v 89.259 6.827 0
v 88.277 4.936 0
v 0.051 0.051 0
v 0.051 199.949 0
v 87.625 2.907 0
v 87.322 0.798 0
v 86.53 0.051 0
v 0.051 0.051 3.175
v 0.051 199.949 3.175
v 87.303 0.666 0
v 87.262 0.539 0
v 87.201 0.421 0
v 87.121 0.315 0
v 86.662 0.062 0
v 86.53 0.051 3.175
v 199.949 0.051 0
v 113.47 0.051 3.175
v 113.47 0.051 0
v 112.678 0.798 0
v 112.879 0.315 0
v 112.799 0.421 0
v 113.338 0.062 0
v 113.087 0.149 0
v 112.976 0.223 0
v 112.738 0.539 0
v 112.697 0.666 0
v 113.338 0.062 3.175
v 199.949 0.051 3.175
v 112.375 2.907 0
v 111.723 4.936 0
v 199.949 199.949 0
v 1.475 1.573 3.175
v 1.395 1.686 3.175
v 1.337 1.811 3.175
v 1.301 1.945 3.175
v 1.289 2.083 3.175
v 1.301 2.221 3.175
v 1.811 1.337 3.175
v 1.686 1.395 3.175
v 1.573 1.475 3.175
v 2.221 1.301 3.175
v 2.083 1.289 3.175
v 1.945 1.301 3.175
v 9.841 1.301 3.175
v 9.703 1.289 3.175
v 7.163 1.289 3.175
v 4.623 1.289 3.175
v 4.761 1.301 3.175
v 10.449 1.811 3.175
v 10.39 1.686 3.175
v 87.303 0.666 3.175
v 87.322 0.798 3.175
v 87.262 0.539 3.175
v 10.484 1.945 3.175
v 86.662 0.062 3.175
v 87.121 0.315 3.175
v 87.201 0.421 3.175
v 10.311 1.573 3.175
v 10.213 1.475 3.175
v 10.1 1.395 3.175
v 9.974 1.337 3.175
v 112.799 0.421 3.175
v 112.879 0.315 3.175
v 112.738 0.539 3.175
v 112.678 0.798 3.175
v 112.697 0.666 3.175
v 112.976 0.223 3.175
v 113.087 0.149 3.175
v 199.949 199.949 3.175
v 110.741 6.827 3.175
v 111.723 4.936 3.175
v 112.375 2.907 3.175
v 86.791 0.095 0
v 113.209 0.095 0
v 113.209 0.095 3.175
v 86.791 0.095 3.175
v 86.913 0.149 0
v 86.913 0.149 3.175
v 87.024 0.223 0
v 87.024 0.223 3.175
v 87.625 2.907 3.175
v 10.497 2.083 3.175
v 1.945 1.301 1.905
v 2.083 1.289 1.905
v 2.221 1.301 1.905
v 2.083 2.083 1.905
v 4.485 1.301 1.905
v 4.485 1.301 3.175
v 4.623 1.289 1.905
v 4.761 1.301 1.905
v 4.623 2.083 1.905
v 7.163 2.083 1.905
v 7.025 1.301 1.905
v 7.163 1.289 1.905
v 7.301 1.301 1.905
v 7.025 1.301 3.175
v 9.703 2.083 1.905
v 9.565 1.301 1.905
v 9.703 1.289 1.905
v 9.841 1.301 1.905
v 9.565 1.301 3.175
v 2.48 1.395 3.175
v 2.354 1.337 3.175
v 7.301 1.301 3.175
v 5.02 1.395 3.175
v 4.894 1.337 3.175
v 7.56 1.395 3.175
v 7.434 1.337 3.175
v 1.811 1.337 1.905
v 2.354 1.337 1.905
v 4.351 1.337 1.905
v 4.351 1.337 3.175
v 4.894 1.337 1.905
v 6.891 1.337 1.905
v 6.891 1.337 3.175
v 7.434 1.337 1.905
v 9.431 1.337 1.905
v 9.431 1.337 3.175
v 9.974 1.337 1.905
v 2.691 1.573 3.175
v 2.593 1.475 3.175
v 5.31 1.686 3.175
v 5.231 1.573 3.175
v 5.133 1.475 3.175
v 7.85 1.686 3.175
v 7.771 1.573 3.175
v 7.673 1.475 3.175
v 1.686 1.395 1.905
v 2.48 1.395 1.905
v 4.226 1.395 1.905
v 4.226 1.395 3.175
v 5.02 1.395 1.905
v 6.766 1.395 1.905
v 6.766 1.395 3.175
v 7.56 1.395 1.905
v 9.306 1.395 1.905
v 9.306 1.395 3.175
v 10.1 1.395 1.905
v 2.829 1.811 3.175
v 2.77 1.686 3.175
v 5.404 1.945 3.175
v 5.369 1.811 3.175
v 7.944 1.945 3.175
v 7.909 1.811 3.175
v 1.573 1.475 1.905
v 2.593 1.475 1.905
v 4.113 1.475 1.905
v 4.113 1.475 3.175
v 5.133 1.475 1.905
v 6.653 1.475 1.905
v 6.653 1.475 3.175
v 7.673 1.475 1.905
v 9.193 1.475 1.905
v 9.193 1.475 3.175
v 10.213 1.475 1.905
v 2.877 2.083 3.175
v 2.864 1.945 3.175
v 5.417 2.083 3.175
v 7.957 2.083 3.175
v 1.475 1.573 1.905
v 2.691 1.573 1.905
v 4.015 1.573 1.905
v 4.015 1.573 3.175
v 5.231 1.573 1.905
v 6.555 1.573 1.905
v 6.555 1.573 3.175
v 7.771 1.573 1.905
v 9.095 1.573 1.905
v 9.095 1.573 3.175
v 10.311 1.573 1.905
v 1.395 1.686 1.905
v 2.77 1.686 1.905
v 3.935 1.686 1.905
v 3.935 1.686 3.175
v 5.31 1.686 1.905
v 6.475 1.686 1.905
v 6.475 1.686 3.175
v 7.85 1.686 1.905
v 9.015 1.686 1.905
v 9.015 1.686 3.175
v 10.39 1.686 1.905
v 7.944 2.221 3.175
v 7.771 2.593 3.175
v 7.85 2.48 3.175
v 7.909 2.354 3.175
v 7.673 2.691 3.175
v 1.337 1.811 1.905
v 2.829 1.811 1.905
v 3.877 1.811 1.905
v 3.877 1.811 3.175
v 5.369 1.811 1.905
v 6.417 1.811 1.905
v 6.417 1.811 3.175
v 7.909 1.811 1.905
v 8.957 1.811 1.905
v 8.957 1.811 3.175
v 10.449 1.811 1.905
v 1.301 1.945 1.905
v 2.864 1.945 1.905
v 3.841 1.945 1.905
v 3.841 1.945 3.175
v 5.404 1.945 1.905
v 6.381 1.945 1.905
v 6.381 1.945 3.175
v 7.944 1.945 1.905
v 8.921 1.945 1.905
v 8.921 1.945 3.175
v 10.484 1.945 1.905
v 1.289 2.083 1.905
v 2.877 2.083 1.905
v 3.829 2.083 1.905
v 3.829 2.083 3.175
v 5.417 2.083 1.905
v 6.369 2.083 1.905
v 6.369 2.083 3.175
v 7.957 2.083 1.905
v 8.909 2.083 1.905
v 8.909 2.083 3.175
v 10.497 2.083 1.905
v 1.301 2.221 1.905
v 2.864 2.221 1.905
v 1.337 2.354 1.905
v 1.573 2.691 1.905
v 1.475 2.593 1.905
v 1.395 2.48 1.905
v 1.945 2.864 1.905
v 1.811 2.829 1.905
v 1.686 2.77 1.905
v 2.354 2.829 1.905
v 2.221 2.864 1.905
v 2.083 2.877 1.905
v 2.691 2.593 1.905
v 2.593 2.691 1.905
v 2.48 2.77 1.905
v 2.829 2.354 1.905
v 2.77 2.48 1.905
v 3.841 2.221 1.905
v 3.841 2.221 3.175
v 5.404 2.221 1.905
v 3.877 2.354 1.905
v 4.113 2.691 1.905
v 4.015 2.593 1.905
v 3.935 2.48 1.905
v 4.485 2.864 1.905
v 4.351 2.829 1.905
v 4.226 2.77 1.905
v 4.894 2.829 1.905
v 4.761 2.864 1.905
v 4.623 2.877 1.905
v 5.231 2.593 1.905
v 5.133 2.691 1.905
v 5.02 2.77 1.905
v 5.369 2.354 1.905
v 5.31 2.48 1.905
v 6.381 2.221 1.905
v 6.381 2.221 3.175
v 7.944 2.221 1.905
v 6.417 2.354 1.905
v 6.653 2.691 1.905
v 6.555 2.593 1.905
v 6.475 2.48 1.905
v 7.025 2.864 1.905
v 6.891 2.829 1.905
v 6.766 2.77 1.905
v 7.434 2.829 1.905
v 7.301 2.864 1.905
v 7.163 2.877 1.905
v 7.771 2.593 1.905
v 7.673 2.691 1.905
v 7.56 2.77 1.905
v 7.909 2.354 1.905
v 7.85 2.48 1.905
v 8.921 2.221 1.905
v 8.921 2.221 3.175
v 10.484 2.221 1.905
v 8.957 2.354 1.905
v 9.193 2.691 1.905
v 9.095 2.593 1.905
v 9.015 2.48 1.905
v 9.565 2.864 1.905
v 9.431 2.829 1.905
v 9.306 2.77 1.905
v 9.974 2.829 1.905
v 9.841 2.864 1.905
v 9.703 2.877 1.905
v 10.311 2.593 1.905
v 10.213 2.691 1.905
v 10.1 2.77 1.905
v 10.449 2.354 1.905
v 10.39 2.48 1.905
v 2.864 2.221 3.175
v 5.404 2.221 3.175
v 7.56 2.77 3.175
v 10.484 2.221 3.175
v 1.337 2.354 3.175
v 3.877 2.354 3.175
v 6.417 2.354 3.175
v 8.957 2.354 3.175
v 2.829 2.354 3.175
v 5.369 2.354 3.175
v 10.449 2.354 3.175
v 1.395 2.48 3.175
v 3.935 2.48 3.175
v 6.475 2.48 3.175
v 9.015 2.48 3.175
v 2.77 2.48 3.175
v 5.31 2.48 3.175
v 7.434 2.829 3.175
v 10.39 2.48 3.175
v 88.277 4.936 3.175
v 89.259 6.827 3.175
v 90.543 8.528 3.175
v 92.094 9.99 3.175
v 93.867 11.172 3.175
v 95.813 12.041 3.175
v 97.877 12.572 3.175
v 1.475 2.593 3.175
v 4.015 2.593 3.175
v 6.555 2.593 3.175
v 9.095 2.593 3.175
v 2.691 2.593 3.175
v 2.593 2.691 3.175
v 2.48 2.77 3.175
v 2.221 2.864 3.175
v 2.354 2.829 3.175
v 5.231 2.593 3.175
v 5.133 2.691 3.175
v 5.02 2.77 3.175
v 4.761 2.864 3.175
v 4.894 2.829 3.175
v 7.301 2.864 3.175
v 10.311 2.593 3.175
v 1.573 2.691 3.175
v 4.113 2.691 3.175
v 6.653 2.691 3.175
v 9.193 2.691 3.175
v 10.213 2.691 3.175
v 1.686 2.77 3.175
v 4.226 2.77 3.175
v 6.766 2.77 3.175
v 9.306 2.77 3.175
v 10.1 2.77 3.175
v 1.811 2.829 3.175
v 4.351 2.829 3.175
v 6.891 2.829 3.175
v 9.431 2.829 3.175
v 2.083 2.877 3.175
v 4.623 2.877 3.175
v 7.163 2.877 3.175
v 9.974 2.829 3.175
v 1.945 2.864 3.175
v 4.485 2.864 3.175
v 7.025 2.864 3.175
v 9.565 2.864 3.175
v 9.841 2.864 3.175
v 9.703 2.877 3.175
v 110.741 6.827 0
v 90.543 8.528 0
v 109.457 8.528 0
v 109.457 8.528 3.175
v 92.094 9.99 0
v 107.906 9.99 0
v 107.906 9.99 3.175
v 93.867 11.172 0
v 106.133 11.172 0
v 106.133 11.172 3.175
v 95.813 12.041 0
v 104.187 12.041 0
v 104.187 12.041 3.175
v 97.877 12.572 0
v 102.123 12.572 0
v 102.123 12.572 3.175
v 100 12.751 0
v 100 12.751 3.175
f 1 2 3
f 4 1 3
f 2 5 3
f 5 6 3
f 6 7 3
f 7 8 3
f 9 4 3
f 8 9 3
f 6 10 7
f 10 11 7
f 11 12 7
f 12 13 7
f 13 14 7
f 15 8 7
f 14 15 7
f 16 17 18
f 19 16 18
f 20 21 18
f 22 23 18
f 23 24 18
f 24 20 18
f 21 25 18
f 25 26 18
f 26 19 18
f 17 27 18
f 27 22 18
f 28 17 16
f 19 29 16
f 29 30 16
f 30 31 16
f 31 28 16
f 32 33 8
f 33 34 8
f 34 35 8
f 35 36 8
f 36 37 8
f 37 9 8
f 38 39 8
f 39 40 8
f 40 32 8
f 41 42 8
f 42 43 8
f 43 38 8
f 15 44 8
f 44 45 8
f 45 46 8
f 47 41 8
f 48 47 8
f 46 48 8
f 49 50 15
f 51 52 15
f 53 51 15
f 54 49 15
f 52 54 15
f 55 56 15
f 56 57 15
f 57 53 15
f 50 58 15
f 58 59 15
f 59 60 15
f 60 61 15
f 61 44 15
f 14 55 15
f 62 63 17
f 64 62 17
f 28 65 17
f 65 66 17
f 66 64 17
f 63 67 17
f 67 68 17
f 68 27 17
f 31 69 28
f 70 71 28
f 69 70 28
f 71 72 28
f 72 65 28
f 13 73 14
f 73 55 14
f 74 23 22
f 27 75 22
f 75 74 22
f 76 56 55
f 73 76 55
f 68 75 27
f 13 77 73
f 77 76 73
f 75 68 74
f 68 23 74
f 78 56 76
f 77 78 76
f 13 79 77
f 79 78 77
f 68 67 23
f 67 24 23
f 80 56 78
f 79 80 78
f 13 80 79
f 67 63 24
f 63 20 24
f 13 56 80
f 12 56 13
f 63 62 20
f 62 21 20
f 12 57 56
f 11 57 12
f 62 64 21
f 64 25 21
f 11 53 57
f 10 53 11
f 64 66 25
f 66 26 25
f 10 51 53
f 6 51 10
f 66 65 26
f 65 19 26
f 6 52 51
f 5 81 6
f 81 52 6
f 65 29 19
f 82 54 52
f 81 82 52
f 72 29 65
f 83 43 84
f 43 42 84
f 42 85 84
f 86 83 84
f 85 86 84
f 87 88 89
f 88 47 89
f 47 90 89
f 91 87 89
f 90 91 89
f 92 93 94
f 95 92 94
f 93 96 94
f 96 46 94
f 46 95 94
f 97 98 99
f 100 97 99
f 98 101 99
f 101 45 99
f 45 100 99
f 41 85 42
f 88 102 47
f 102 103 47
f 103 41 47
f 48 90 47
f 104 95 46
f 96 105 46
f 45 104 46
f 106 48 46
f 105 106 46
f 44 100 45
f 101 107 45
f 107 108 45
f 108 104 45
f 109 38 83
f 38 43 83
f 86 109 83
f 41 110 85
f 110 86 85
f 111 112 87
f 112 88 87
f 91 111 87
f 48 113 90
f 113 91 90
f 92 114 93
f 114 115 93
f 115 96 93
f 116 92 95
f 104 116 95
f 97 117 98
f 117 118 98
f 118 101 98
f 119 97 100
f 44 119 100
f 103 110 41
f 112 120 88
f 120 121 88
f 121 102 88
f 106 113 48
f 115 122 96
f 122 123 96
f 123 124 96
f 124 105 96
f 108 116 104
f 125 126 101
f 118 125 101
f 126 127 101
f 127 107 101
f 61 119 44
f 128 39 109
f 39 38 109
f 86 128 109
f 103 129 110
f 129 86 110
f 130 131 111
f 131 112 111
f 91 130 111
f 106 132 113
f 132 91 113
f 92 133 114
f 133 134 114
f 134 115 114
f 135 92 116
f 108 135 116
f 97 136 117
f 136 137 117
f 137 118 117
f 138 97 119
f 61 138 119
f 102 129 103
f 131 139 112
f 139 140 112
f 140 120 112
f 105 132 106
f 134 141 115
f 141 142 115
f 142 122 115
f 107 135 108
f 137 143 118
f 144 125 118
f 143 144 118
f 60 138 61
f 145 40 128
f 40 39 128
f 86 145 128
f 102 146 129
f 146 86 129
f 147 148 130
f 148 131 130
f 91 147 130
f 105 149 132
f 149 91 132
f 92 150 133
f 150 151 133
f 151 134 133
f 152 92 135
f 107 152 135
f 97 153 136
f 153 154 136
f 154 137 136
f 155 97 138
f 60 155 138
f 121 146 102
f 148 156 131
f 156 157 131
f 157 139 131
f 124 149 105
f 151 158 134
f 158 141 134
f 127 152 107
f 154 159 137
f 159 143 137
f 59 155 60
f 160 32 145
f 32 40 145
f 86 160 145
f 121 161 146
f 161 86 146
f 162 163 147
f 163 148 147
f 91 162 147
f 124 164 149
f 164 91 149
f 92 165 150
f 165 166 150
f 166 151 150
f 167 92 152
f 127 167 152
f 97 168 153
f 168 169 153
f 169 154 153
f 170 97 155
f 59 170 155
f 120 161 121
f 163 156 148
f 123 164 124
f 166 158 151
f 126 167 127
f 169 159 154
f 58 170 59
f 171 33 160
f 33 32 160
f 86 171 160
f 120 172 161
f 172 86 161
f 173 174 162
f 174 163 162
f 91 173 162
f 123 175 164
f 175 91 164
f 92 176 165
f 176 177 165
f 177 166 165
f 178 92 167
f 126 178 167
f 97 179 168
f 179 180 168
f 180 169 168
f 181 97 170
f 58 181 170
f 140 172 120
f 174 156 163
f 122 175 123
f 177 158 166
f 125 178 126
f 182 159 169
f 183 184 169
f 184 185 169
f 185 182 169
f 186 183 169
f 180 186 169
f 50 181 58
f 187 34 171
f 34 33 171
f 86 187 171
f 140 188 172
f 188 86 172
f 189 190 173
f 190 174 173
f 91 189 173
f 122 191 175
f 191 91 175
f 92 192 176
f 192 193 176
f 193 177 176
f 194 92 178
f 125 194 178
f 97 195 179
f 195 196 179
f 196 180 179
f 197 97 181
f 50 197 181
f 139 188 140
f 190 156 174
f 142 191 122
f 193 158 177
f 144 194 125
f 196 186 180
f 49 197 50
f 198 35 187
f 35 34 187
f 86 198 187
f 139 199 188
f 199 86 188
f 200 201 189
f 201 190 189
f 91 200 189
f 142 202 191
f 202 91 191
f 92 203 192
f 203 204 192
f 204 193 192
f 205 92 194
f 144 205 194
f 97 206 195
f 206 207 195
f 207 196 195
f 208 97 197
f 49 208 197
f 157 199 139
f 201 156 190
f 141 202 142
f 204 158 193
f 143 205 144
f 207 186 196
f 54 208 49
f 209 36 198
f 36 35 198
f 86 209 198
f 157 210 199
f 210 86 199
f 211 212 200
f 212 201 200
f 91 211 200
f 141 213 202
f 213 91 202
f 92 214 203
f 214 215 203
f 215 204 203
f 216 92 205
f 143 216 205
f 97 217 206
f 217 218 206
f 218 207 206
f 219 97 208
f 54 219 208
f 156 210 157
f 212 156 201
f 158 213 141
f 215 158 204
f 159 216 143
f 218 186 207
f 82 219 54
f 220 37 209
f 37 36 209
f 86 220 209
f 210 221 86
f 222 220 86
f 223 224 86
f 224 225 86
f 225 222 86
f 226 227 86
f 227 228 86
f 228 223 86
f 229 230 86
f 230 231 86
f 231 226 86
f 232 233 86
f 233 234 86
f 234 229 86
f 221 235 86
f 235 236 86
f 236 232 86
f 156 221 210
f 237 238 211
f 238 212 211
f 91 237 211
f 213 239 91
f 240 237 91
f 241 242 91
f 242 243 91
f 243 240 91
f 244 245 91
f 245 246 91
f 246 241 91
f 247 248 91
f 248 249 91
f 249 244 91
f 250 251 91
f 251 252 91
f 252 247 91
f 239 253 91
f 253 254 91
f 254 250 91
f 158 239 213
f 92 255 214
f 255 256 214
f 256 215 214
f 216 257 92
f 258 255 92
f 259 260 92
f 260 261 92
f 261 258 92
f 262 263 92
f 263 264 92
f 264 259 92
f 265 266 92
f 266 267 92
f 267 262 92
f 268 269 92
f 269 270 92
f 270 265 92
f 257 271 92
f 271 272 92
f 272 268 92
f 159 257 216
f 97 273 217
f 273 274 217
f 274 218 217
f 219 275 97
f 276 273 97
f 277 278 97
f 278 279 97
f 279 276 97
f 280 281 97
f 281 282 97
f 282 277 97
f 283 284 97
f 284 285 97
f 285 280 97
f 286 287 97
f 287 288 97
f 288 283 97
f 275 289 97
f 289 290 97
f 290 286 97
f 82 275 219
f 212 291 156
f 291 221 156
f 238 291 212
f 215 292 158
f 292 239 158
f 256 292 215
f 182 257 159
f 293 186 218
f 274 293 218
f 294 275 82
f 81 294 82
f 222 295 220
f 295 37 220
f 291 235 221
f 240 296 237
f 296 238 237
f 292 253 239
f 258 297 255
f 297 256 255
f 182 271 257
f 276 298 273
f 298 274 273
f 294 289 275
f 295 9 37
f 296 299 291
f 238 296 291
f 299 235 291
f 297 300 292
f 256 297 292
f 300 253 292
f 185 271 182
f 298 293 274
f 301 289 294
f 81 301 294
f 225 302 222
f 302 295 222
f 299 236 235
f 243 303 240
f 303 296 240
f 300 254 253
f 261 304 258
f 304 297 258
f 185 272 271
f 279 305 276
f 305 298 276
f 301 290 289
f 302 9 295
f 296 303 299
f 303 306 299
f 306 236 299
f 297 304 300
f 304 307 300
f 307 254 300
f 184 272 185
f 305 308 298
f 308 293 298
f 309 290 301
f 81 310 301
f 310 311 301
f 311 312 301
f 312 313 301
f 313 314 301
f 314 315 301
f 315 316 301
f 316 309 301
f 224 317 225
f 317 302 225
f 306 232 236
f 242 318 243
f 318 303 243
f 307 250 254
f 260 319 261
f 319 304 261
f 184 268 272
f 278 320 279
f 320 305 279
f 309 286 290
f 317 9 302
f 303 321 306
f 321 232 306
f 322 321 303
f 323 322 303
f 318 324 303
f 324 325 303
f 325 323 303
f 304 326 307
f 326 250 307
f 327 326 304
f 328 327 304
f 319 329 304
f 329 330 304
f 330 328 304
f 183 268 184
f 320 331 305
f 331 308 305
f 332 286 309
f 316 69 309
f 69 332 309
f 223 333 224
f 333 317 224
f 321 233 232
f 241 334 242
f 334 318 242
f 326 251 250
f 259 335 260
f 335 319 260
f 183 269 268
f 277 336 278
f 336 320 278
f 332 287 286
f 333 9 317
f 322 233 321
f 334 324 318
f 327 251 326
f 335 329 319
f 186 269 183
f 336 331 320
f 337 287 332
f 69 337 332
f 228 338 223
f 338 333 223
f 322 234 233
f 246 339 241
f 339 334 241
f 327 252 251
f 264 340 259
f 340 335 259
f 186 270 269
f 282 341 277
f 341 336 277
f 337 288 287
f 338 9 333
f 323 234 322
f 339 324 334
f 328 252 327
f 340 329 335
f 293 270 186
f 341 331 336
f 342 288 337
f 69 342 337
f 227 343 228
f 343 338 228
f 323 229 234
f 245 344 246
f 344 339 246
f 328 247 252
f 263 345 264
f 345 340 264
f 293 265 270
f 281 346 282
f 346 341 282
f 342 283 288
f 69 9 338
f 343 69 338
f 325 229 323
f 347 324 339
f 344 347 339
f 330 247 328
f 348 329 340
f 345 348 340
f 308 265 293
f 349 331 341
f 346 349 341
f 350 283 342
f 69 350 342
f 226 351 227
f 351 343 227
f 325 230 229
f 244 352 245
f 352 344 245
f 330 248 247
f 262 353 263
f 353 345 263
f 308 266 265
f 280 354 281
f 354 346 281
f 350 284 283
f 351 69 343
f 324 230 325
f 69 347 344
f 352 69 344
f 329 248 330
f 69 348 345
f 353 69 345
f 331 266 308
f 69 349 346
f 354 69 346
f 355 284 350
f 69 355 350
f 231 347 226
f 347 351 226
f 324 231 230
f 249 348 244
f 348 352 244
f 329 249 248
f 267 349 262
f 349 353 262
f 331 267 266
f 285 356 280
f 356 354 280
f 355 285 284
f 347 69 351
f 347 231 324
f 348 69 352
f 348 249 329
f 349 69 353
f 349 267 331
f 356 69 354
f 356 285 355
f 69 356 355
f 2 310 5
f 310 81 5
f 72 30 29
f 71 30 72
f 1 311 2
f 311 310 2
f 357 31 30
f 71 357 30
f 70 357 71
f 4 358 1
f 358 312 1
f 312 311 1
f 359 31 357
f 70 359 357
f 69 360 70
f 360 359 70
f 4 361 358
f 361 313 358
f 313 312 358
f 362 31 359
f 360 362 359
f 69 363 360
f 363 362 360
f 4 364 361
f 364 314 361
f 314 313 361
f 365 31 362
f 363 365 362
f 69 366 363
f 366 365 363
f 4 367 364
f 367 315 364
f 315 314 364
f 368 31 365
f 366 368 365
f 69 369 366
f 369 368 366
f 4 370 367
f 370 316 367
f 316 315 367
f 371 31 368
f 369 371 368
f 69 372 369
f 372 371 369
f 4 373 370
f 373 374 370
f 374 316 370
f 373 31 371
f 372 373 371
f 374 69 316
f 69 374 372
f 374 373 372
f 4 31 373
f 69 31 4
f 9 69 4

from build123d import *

# Parameters (mm, degrees)
SKETCH1_W           = 200
SKETCH1_H           = 200
BOSS_EXTRUDE1_DEPTH = 3.175
SKETCH5_W           = 200
SKETCH5_H           = 200
SKETCH5_W_2         = 199.8984
SKETCH5_H_2         = 199.8984
CUT_EXTRUDE2_DEPTH  = 283.860532109
CUT_EXTRUDE1_DEPTH  = 3.175
FILLET1_R           = 0.79375
SKETCH6_R           = 0.79375
CUT_EXTRUDE3_DEPTH  = 1.27
LPATTERN1_COUNT     = 4
LPATTERN1_PITCH     = 2.54


with BuildPart() as part:
    # Sketch1 → Boss-Extrude1 (new body)
    with BuildSketch(Plane.XY):
        with Locations((100, 100)):
            Rectangle(SKETCH1_W, SKETCH1_H)
    extrude(amount=BOSS_EXTRUDE1_DEPTH)

    # Sketch5 → Cut-Extrude2 (cut, through all)
    with BuildSketch(Plane.XY.offset(3.175)):
        with Locations((100, 100)):
            Rectangle(SKETCH5_W, SKETCH5_H)
        with Locations((100, 100)):
            Rectangle(SKETCH5_W_2, SKETCH5_H_2, mode=Mode.SUBTRACT)
    extrude(amount=-CUT_EXTRUDE2_DEPTH, mode=Mode.SUBTRACT)

    # Sketch2 → Cut-Extrude1 (cut)
    with BuildSketch(Plane.XY.offset(3.175)):
        with BuildLine():
            Line((87.3, 0.0508), (112.7, 0.0508))
            ThreePointArc((112.7, 0.0508), (100, 12.7508), (87.3, 0.0508))
        make_face()
    extrude(amount=-CUT_EXTRUDE1_DEPTH, mode=Mode.SUBTRACT)

    # Fillet1
    fillet1_edges = [part.edges().sort_by_distance(p)[0] for p in [
        (87.3, 0.0508, 1.5875),
        (112.7, 0.0508, 1.5875),
    ]]
    fillet(fillet1_edges, radius=FILLET1_R)

    # Sketch6 → Cut-Extrude3 (cut)
    with BuildSketch(Plane.XY.offset(3.175)):
        with Locations((2.0828, 2.0828)):
            Circle(SKETCH6_R)
    cut_extrude3 = extrude(amount=-CUT_EXTRUDE3_DEPTH, mode=Mode.SUBTRACT)

    # LPattern1: Cut-Extrude3 ×4
    with Locations(*[(i * LPATTERN1_PITCH, 0, 0) for i in range(1, LPATTERN1_COUNT)]):
        add(cut_extrude3, mode=Mode.SUBTRACT)


solid = part.part
